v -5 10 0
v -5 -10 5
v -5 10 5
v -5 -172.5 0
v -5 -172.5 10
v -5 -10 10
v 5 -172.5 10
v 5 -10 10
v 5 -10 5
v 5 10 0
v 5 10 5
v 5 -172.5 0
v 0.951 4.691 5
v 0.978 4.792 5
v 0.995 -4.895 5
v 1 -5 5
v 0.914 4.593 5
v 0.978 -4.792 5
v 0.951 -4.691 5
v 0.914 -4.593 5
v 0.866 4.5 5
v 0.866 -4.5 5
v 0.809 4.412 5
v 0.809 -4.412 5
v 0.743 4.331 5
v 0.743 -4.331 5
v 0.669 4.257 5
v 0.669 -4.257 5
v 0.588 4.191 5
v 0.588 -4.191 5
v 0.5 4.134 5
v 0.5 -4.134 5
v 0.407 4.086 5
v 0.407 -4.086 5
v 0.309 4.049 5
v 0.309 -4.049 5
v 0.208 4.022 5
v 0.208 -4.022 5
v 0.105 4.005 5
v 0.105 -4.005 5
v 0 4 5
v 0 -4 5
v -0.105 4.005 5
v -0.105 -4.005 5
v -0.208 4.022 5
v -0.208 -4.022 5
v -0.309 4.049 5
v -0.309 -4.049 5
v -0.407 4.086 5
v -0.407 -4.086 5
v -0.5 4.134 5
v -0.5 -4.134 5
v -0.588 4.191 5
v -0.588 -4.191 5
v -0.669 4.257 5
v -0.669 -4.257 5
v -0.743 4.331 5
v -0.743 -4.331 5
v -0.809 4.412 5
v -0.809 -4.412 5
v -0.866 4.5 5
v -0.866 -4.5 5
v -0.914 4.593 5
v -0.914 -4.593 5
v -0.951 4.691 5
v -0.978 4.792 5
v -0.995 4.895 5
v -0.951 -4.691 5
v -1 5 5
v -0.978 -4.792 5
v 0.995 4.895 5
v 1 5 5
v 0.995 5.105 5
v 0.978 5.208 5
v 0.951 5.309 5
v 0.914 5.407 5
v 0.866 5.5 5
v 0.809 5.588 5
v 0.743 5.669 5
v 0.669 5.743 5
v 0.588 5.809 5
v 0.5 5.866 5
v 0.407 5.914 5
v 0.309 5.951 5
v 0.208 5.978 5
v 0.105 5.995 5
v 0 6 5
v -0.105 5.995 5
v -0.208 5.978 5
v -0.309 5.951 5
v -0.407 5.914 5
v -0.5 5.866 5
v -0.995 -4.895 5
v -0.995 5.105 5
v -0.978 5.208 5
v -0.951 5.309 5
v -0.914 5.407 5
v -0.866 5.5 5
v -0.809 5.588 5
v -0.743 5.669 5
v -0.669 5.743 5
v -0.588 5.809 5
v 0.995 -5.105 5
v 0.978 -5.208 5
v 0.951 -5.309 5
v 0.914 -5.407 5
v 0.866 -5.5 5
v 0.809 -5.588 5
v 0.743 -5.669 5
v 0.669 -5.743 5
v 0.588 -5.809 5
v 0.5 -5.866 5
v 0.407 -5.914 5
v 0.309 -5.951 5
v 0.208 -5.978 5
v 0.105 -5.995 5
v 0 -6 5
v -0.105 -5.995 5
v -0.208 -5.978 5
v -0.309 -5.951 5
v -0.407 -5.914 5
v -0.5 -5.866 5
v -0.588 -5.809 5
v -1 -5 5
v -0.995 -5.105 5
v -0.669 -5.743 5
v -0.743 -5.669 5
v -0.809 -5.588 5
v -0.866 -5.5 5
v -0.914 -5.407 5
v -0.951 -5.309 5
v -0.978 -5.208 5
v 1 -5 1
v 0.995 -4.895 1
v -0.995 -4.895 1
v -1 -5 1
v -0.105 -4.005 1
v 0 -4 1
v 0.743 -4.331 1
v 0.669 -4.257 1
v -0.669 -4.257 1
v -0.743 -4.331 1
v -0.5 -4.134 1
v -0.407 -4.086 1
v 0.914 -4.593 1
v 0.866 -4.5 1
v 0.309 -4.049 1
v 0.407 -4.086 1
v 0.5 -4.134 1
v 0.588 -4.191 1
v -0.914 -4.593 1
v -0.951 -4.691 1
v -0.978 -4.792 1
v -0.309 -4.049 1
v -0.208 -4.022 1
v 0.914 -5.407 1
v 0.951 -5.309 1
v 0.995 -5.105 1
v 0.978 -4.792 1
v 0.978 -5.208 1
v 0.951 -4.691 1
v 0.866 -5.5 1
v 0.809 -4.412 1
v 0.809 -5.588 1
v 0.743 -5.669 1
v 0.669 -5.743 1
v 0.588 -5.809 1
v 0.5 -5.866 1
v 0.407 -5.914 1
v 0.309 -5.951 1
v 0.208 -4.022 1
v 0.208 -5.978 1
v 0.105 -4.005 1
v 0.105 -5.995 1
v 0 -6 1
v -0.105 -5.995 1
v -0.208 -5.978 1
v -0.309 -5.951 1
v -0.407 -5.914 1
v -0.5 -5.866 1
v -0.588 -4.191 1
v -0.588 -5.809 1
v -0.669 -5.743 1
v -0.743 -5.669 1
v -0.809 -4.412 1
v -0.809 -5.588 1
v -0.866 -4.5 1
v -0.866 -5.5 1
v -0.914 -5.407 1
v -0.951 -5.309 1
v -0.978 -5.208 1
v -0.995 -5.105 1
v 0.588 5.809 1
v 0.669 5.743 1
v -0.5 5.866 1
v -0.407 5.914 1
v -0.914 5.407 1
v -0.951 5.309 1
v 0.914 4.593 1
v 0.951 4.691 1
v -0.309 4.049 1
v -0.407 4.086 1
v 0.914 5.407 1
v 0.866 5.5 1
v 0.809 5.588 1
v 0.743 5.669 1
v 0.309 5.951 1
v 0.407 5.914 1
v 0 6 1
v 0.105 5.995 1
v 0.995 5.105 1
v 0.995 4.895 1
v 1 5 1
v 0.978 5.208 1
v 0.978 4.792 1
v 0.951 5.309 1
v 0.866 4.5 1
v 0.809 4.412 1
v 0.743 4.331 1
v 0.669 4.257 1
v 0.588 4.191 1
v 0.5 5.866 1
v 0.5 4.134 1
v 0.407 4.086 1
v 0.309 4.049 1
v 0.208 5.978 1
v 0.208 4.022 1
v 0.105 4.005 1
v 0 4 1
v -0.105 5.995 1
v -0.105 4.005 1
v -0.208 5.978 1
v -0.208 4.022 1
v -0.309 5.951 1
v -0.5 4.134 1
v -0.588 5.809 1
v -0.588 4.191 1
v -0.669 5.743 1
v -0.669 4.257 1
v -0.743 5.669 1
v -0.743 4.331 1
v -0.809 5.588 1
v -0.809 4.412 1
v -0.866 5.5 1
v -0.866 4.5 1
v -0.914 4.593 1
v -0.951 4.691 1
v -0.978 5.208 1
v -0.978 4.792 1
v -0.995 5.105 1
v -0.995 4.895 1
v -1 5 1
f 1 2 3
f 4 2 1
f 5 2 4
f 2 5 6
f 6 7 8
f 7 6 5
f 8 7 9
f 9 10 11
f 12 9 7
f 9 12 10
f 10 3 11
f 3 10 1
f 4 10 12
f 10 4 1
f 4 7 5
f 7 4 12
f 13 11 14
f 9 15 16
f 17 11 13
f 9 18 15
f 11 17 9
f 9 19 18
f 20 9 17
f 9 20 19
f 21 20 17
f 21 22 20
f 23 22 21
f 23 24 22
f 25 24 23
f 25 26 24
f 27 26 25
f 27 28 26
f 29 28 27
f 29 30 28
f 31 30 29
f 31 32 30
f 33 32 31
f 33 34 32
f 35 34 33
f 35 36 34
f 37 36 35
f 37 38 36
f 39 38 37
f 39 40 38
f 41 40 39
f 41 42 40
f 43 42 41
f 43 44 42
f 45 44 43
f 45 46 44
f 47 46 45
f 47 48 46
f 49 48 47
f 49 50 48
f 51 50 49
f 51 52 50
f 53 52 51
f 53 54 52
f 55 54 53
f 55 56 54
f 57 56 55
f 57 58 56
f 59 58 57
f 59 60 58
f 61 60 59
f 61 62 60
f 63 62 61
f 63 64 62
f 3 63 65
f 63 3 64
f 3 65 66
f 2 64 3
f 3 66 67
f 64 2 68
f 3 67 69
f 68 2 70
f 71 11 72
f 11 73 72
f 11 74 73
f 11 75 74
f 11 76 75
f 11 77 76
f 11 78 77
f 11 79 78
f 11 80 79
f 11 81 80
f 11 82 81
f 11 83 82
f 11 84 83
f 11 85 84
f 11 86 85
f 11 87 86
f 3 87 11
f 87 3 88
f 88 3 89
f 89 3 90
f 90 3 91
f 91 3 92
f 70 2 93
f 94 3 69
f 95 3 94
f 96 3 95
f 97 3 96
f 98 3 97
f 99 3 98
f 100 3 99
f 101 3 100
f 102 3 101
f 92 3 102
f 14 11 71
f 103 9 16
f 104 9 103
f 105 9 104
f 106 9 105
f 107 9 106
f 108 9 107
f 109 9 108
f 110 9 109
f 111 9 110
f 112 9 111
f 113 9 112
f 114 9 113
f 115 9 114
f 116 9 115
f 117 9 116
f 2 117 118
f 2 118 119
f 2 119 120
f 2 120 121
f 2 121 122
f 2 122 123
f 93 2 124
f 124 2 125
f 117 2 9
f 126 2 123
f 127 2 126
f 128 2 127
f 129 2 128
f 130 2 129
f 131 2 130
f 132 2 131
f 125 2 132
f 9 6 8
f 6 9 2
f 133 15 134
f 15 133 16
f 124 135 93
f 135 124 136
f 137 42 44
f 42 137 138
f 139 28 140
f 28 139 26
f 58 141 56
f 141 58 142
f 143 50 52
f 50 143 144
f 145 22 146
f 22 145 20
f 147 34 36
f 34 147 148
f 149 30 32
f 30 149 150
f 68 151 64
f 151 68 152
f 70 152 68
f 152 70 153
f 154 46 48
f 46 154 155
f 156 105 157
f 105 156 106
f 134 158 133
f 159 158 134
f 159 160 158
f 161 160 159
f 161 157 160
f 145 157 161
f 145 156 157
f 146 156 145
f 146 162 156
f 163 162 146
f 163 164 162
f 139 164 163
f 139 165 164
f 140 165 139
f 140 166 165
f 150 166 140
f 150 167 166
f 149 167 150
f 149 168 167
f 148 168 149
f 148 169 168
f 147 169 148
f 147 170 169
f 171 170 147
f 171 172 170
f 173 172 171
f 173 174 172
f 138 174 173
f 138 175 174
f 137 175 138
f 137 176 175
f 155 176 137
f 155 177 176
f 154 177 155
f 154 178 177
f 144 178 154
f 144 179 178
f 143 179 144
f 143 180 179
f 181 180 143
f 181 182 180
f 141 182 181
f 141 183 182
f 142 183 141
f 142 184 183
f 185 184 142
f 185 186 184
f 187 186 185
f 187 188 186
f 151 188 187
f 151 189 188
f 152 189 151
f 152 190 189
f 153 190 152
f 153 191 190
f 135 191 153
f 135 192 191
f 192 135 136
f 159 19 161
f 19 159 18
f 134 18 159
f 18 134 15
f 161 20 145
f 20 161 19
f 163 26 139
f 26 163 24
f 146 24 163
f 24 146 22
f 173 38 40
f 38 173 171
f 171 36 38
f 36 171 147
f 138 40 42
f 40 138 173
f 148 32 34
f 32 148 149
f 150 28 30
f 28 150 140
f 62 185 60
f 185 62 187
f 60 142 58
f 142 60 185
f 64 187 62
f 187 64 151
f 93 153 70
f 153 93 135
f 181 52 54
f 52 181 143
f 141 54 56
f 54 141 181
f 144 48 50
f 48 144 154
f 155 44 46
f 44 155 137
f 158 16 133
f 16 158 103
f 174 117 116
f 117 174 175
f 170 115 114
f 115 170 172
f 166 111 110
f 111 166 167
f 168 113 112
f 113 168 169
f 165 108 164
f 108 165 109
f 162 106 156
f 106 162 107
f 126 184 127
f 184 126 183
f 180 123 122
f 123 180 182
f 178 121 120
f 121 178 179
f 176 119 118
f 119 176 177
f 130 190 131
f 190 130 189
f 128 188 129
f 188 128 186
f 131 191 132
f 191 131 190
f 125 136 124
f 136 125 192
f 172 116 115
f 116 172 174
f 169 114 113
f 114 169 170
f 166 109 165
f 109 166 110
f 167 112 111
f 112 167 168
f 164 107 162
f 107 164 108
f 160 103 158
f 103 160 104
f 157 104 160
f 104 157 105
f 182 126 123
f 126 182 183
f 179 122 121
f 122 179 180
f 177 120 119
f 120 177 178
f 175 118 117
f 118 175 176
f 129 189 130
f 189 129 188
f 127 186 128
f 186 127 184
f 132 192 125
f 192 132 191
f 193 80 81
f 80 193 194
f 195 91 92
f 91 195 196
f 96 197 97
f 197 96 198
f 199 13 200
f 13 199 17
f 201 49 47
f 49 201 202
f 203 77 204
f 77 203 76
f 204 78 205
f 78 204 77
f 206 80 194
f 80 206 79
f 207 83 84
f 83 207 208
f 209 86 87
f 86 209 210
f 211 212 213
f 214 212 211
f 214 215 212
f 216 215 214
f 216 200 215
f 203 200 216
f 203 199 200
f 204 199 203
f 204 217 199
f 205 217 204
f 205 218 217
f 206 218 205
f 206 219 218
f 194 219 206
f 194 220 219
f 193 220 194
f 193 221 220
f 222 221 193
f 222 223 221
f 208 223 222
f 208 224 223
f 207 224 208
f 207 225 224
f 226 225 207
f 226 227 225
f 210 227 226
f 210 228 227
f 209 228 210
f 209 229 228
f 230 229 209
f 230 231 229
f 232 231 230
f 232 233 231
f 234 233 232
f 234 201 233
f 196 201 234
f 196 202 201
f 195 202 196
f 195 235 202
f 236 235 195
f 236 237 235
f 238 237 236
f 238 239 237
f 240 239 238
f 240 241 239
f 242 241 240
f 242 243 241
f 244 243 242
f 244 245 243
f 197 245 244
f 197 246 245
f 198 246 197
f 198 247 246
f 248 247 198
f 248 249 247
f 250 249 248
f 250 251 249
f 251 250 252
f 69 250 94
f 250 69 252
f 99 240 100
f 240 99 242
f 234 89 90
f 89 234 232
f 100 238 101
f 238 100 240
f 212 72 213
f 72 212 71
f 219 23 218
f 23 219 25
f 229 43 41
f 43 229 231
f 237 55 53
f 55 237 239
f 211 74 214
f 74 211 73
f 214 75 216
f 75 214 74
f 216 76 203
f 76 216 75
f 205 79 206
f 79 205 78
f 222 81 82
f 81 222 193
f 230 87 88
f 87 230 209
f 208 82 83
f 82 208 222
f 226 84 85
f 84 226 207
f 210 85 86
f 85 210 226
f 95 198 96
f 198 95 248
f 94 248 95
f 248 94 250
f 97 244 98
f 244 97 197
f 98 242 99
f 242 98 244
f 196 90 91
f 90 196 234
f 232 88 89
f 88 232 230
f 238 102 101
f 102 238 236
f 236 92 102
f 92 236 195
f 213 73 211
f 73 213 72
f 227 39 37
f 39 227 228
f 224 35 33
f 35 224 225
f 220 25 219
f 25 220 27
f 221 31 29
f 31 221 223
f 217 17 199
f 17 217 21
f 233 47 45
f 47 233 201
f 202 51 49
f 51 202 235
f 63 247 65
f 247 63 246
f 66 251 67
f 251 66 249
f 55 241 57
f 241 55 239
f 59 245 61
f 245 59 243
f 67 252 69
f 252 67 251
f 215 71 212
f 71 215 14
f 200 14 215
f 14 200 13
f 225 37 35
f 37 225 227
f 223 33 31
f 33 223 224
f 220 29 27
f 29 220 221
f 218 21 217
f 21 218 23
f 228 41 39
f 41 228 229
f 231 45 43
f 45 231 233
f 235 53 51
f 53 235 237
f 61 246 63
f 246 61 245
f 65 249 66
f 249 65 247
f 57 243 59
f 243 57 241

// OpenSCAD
/* ==========================================================================
   PROJETO CAMPO TÁTIL - METADE FRONTAL DO EIXO GUIA Y (IMPRESSÃO DIAGONAL)
   Barra de 10x10mm dividida com emenda de 20mm e pinos de filamento 1.75mm
   Para imprimir na A1 Mini: Rotacione a peça em 45 graus na mesa de impressão
   ========================================================================== */

$fn = 60;

module eixo_y_barra_frontal() {
    difference() {
        // Corpo da barra de Y = -172.5mm até Y = 10.0mm (Comprimento total: 182.5mm)
        translate([0, -81.25, 5])
            cube([10, 182.5, 10], center=true);
            
        // Corte da metade superior da emenda (Z de 5.0 a 10.0mm na faixa Y de -10 a 10mm)
        translate([0, 0, 7.5])
            cube([12, 20.0, 5.0], center=true);
            
        // Furos de guia para pinos de filamento 1.75mm (diâmetro de 2.0mm para encaixe justo)
        // Posicionados na linha central Z = 5.0mm nas cotas Y = -5mm e Y = 5mm
        translate([0, -5.0, 5.0])
            cylinder(h = 8.0, r = 1.0, center=true);
        translate([0, 5.0, 5.0])
            cylinder(h = 8.0, r = 1.0, center=true);
    }
}

// Renderiza a peça pronta para exportação
eixo_y_barra_frontal();
